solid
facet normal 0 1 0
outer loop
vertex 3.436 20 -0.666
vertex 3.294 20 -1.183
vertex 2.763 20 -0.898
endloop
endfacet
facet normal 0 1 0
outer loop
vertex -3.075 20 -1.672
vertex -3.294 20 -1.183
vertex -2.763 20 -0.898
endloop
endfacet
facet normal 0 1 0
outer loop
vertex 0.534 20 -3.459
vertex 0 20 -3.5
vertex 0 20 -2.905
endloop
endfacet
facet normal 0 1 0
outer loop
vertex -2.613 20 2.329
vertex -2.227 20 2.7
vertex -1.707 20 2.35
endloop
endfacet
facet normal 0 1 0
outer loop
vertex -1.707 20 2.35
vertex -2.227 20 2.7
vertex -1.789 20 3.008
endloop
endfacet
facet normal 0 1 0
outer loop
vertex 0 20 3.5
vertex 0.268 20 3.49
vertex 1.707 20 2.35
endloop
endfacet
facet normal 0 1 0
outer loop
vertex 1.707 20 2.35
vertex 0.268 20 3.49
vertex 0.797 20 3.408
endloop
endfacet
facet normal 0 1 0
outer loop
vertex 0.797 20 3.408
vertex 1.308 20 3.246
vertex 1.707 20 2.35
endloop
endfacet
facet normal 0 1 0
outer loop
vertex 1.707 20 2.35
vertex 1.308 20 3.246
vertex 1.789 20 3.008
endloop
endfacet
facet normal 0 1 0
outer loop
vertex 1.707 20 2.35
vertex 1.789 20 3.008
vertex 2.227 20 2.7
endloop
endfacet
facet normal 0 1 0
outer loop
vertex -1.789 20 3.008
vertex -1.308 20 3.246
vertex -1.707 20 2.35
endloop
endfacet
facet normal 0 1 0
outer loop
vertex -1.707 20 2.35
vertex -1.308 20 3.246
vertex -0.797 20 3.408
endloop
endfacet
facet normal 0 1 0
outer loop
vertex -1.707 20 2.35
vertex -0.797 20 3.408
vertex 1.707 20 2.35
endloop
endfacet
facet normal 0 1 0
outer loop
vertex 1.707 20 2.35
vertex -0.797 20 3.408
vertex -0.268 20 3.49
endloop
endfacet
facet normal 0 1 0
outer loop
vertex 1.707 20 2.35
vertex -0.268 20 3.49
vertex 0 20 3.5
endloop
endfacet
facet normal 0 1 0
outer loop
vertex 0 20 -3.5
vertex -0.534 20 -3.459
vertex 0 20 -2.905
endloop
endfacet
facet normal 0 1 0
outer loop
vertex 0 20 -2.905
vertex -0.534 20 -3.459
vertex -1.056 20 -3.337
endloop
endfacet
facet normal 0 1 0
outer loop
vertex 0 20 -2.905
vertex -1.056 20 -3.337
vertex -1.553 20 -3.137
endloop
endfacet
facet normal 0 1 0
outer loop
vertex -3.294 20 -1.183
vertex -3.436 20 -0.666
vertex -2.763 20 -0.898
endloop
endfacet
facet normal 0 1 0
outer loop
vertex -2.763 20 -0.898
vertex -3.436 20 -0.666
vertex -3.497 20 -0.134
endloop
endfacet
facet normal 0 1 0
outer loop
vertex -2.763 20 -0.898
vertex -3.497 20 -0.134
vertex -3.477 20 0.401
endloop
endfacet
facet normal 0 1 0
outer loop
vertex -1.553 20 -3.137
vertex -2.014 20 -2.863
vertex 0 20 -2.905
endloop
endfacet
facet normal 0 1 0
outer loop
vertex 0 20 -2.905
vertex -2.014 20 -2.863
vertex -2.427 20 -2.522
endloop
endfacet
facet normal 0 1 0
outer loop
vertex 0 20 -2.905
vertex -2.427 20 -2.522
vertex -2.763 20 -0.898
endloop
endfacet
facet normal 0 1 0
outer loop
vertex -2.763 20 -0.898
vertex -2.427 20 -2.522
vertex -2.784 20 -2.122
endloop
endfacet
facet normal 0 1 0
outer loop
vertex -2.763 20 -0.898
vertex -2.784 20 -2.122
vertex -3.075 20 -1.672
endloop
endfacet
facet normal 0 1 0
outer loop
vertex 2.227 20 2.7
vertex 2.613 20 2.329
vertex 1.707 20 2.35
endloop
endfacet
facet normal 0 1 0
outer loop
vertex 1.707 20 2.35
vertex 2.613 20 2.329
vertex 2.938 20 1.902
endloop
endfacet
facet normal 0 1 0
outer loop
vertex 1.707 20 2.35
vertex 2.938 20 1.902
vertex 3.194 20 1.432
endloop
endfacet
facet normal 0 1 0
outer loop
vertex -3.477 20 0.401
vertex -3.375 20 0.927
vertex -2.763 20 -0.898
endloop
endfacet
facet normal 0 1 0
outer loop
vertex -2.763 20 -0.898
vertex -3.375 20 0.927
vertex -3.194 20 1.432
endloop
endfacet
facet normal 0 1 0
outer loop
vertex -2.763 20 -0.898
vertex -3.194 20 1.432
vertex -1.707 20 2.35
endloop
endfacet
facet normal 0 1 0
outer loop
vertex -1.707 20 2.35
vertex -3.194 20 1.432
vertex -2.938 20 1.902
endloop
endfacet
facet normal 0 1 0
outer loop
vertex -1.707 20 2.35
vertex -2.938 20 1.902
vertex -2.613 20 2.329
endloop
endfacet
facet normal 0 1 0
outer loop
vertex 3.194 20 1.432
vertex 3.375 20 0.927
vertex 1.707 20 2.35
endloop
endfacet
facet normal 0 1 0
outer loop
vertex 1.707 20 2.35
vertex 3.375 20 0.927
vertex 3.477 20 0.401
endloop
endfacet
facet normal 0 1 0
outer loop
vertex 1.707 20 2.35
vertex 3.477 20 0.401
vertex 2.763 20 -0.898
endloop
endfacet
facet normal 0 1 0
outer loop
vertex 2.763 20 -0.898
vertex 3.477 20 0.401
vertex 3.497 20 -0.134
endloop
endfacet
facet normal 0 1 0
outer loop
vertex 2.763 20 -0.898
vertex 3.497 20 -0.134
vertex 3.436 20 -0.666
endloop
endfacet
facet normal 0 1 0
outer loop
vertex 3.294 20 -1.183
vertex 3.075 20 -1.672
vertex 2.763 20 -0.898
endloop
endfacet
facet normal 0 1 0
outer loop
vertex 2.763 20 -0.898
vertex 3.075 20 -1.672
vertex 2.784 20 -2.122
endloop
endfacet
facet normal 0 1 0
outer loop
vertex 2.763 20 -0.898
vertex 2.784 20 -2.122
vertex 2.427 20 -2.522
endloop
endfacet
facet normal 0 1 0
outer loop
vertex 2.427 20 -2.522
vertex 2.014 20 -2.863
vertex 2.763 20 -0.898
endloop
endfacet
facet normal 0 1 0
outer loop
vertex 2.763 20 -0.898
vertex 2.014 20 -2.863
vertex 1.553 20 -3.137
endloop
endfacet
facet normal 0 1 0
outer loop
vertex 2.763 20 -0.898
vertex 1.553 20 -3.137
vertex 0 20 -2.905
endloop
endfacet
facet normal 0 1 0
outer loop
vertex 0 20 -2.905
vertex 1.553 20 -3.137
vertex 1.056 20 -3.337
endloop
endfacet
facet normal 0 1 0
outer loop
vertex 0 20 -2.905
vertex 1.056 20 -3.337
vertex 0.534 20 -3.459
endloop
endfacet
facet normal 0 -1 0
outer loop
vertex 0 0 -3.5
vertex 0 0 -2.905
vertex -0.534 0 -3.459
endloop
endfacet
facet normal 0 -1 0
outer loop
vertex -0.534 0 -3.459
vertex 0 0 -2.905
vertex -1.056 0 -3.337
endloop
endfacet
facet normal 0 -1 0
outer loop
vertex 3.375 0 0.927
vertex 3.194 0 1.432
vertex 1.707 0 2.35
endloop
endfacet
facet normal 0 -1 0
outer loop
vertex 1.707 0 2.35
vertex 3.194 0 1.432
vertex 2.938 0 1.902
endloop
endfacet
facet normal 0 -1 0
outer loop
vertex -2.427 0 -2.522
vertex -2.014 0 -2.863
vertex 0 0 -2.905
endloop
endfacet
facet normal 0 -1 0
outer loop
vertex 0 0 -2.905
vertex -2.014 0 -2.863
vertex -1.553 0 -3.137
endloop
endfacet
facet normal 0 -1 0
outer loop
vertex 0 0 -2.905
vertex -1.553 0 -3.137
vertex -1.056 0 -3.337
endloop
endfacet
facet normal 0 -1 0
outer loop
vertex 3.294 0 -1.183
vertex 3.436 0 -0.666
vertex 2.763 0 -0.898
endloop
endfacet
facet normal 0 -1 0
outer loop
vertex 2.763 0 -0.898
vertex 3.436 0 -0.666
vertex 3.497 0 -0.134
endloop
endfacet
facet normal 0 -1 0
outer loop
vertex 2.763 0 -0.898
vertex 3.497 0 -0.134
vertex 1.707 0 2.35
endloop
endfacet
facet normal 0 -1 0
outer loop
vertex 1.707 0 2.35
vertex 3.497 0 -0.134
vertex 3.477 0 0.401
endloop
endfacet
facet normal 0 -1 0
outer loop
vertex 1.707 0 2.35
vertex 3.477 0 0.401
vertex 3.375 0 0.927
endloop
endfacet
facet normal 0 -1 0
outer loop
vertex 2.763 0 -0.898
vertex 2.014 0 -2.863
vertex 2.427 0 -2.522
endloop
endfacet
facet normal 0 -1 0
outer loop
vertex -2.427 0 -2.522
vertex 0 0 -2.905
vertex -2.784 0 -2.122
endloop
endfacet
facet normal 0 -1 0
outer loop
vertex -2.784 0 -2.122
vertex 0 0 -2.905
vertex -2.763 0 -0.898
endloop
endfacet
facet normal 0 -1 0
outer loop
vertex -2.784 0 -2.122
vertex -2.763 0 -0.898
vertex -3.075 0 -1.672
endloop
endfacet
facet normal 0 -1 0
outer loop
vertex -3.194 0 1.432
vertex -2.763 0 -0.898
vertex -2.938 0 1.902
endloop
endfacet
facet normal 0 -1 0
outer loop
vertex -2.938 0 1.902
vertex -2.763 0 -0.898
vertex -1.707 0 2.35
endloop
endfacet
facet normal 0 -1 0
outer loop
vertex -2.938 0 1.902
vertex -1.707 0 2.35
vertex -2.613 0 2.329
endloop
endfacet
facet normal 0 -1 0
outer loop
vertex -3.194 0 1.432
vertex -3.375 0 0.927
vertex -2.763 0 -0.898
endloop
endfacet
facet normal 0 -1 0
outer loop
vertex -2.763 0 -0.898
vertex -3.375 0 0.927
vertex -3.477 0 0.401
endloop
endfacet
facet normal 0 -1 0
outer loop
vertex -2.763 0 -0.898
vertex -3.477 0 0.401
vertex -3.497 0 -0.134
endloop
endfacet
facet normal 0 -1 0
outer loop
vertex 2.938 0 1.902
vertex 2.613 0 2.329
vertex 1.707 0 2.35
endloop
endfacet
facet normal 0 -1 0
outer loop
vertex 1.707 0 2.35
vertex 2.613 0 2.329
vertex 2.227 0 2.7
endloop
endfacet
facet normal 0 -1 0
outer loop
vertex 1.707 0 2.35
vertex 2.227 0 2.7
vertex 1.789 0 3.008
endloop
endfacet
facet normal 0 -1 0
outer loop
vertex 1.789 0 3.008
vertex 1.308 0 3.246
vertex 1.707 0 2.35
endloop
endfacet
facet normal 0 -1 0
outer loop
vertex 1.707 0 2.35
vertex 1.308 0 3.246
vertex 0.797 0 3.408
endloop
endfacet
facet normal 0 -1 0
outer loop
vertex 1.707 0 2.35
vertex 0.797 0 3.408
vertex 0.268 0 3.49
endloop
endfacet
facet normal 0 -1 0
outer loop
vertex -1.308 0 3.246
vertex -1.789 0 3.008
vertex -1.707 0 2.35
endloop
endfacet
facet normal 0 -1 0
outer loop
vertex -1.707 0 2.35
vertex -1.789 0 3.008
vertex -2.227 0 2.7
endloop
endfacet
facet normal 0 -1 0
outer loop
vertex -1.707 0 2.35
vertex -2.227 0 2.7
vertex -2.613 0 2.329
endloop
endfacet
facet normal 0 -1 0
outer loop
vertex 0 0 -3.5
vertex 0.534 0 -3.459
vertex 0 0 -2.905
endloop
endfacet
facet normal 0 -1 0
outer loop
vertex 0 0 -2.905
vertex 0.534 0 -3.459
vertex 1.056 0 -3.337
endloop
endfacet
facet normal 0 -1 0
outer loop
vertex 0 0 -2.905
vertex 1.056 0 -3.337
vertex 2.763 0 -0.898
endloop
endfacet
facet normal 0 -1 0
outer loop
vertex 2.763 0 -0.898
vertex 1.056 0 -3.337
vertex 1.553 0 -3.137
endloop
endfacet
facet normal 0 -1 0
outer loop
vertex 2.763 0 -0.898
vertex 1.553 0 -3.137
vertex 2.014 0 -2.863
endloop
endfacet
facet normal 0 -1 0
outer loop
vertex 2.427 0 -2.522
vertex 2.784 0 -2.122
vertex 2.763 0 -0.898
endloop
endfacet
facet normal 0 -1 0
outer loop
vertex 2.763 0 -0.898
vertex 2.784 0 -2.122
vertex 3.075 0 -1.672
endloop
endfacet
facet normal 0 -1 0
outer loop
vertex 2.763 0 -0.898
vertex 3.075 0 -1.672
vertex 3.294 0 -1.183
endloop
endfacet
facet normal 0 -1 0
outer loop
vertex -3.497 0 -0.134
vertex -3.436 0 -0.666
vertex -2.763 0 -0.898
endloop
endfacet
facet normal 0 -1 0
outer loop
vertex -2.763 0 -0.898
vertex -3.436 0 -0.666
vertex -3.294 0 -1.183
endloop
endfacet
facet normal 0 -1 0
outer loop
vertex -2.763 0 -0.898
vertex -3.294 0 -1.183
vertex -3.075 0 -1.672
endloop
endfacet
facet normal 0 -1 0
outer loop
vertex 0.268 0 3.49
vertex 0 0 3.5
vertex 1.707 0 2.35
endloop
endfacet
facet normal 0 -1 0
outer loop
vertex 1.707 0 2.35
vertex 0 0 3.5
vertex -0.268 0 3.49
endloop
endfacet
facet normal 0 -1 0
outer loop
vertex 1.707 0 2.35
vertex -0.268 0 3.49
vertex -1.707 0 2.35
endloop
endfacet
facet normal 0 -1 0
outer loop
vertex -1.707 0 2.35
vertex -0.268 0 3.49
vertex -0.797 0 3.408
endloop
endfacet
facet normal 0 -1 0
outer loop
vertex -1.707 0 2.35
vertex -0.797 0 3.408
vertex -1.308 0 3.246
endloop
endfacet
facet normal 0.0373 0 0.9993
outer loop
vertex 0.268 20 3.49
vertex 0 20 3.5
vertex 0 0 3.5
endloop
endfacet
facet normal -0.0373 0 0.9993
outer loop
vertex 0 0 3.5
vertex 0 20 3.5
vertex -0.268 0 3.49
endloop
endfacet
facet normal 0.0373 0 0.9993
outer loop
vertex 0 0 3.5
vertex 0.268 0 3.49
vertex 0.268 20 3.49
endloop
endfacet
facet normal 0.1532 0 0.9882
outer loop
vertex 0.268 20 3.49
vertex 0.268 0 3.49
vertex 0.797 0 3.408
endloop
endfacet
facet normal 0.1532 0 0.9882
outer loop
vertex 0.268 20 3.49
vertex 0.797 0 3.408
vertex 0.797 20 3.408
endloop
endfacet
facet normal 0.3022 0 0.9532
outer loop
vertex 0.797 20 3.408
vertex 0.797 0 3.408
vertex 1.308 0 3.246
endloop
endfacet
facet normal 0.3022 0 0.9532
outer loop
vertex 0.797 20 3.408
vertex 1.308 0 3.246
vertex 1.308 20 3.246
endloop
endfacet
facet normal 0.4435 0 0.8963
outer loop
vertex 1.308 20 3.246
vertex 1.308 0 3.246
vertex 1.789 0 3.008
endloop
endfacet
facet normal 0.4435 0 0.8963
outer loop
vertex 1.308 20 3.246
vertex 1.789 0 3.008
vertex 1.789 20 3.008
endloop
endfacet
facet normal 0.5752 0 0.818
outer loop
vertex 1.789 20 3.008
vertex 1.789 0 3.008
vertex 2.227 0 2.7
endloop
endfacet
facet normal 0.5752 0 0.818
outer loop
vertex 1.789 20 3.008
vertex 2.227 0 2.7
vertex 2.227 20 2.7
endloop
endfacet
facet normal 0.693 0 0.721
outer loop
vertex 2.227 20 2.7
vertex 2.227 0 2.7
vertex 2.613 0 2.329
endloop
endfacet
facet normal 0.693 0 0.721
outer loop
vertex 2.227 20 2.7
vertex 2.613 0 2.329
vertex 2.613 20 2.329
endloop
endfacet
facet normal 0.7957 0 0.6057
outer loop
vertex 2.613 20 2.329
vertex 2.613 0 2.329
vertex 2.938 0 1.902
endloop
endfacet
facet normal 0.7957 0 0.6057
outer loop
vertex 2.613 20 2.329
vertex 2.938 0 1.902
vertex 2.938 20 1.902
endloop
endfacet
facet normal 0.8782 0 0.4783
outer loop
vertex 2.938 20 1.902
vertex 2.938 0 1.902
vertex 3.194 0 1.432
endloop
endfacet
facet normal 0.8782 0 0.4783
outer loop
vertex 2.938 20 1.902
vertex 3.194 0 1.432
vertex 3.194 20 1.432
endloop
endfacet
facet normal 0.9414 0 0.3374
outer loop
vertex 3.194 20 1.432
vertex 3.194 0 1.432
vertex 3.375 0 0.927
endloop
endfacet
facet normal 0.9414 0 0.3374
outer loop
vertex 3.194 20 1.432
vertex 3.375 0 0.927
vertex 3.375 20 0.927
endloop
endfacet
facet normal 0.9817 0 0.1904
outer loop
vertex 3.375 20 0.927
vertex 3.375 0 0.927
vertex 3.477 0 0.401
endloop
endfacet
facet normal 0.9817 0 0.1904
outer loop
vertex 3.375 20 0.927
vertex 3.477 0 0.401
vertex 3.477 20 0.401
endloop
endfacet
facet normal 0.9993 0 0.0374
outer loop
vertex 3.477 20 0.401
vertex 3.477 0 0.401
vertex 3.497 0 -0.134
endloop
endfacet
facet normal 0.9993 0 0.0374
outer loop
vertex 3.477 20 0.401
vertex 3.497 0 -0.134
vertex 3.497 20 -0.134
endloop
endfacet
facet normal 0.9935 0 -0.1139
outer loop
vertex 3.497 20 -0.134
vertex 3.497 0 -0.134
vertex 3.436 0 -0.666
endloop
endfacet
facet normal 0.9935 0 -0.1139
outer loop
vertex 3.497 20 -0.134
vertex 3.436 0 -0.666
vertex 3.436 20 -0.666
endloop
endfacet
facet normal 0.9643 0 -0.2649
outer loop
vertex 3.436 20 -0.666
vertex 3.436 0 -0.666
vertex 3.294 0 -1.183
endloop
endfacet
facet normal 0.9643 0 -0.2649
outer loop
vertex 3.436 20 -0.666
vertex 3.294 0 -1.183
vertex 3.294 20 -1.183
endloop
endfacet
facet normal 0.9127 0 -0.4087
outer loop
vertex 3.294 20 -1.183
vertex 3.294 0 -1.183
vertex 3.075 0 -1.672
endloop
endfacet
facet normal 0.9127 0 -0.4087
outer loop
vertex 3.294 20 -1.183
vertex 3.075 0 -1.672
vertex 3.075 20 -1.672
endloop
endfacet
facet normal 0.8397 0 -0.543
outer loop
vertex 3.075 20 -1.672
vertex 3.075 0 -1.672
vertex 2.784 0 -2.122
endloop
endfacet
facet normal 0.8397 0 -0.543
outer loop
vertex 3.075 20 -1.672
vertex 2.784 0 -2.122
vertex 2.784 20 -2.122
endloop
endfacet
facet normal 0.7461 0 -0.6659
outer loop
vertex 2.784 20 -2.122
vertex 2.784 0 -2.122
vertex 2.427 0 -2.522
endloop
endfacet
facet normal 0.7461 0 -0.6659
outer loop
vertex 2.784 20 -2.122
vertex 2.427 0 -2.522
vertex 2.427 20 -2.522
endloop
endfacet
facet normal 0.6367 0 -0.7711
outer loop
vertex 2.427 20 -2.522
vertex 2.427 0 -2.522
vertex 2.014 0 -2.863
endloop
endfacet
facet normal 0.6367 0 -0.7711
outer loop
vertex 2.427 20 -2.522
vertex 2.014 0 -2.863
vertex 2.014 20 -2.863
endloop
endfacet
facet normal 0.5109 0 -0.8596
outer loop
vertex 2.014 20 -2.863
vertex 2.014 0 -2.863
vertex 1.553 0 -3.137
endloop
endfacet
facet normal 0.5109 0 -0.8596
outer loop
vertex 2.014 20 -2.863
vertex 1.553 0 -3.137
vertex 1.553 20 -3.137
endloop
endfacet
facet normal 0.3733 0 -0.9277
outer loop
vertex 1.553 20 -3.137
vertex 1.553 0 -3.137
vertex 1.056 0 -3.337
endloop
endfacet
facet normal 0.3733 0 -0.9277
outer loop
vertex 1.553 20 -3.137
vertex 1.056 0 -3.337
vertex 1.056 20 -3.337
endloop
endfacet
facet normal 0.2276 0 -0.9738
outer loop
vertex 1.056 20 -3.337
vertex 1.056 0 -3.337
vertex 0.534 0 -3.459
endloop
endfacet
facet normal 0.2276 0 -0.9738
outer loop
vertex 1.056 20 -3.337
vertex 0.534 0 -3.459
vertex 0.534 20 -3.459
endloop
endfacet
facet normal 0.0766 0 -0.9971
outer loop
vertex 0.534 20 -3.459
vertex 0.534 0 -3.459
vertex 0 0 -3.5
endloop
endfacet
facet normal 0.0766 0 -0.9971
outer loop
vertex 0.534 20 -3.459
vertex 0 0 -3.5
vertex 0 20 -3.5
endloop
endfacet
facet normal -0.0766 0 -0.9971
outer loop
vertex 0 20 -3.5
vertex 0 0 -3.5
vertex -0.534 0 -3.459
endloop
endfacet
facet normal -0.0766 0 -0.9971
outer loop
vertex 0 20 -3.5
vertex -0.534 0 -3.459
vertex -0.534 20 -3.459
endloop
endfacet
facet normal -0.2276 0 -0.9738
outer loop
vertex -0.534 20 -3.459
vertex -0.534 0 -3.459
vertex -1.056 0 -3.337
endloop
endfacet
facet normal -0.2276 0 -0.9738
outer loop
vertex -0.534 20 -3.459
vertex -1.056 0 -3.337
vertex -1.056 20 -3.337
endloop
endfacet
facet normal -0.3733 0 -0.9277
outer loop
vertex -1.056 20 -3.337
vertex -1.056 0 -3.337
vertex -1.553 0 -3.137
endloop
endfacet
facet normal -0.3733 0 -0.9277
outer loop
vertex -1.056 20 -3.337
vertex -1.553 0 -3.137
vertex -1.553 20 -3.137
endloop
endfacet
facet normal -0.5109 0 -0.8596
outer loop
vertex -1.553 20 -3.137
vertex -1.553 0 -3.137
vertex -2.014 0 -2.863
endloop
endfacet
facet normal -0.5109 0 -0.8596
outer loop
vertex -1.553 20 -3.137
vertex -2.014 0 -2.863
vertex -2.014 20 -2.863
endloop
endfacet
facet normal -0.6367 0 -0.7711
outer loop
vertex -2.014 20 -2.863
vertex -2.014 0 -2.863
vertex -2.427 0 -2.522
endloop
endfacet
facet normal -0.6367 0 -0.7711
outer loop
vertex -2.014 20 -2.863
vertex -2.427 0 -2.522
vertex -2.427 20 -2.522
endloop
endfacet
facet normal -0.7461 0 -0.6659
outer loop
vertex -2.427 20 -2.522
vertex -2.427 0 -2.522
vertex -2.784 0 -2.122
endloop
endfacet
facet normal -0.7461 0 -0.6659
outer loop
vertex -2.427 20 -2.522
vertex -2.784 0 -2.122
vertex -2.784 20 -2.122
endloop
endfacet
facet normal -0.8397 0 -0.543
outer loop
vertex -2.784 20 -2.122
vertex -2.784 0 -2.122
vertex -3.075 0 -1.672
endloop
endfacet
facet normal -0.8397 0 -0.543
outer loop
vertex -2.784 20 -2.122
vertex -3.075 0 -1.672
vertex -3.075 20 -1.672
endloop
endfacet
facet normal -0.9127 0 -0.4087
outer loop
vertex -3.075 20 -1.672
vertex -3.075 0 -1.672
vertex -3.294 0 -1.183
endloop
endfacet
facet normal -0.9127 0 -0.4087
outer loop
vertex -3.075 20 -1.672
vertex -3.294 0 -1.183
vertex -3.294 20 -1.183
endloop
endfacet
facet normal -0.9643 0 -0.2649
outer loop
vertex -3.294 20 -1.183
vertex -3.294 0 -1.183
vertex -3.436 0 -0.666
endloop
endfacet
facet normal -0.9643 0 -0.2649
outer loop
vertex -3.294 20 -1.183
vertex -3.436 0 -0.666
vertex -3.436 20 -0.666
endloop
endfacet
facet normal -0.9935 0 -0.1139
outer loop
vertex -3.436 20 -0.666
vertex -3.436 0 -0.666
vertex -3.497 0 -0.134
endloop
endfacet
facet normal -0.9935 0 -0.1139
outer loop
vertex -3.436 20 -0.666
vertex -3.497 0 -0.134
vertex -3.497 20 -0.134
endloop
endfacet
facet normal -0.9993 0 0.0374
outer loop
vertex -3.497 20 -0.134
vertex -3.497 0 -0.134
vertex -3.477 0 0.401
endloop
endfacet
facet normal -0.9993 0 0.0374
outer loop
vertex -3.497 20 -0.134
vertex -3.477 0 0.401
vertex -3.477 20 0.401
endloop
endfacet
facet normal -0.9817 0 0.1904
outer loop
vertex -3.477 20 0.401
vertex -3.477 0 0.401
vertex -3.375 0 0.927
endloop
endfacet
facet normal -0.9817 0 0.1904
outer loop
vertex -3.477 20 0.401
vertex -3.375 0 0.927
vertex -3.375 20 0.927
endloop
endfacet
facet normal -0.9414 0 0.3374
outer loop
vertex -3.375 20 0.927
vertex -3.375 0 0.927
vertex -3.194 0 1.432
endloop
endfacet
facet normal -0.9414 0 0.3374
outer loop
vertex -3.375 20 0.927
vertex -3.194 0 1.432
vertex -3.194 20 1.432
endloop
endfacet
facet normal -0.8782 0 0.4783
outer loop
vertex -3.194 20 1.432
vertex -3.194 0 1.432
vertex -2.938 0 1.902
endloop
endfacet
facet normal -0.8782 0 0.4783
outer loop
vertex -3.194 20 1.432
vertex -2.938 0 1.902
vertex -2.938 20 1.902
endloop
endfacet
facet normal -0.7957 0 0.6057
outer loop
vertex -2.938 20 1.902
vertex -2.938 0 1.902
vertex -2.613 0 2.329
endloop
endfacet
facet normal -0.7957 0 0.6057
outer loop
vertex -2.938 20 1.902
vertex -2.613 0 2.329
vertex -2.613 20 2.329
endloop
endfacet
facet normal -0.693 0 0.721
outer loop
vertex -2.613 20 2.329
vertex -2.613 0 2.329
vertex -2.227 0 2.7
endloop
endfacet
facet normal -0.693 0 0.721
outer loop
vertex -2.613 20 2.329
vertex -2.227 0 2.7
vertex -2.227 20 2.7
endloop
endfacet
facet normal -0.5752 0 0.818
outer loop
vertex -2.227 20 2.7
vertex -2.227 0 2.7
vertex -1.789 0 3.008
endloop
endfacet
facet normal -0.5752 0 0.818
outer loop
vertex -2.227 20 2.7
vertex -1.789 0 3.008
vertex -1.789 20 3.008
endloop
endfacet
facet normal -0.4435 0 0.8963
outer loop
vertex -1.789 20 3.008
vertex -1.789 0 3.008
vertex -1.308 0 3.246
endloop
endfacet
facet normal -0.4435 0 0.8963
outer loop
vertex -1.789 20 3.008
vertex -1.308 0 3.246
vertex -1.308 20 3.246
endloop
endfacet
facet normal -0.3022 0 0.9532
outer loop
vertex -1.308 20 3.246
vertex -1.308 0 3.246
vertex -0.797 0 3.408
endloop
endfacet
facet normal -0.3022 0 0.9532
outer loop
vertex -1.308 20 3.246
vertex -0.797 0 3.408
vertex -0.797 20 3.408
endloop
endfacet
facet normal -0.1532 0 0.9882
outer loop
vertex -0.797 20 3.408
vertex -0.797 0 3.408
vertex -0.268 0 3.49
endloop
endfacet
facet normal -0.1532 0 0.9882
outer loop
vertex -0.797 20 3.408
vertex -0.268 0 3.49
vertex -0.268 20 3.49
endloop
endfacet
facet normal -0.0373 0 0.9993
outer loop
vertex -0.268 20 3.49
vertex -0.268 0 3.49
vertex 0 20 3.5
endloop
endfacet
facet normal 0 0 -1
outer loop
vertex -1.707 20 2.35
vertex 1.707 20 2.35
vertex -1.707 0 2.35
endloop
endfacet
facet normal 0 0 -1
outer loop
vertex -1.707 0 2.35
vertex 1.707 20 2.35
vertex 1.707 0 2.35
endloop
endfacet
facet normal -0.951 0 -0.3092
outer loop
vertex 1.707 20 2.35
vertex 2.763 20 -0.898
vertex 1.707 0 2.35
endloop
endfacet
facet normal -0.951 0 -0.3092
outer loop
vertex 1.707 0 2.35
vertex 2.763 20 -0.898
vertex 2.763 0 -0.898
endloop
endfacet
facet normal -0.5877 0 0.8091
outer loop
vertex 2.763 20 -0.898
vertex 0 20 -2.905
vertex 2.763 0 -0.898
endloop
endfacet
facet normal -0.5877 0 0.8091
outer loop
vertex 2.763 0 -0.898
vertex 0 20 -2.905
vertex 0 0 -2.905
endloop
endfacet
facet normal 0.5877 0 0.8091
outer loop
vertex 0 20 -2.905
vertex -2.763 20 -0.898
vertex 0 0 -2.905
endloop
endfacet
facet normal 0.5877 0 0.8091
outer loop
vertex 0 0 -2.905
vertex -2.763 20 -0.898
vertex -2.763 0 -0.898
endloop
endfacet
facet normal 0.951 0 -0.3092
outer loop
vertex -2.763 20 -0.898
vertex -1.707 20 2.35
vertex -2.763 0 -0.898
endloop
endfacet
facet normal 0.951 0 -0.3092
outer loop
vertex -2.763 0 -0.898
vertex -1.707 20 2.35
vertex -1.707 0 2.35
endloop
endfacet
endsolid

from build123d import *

# Parameters (mm, degrees)
SKETCH1_R           = 3.5
BOSS_EXTRUDE1_DEPTH = 20


with BuildPart() as part:
    # Sketch1 → Boss-Extrude1 (new body)
    with BuildSketch(Plane(origin=(0, 0, 0), x_dir=(1, 0, 0), z_dir=(0, 1, 0))):
        Circle(SKETCH1_R)
        Polygon((1.707374941, -2.35), (2.762590686, 0.897620126), (0, 2.904759747), (-2.762590686, 0.897620126), (-1.707374941, -2.35), align=None, mode=Mode.SUBTRACT)
    extrude(amount=BOSS_EXTRUDE1_DEPTH)


solid = part.part
